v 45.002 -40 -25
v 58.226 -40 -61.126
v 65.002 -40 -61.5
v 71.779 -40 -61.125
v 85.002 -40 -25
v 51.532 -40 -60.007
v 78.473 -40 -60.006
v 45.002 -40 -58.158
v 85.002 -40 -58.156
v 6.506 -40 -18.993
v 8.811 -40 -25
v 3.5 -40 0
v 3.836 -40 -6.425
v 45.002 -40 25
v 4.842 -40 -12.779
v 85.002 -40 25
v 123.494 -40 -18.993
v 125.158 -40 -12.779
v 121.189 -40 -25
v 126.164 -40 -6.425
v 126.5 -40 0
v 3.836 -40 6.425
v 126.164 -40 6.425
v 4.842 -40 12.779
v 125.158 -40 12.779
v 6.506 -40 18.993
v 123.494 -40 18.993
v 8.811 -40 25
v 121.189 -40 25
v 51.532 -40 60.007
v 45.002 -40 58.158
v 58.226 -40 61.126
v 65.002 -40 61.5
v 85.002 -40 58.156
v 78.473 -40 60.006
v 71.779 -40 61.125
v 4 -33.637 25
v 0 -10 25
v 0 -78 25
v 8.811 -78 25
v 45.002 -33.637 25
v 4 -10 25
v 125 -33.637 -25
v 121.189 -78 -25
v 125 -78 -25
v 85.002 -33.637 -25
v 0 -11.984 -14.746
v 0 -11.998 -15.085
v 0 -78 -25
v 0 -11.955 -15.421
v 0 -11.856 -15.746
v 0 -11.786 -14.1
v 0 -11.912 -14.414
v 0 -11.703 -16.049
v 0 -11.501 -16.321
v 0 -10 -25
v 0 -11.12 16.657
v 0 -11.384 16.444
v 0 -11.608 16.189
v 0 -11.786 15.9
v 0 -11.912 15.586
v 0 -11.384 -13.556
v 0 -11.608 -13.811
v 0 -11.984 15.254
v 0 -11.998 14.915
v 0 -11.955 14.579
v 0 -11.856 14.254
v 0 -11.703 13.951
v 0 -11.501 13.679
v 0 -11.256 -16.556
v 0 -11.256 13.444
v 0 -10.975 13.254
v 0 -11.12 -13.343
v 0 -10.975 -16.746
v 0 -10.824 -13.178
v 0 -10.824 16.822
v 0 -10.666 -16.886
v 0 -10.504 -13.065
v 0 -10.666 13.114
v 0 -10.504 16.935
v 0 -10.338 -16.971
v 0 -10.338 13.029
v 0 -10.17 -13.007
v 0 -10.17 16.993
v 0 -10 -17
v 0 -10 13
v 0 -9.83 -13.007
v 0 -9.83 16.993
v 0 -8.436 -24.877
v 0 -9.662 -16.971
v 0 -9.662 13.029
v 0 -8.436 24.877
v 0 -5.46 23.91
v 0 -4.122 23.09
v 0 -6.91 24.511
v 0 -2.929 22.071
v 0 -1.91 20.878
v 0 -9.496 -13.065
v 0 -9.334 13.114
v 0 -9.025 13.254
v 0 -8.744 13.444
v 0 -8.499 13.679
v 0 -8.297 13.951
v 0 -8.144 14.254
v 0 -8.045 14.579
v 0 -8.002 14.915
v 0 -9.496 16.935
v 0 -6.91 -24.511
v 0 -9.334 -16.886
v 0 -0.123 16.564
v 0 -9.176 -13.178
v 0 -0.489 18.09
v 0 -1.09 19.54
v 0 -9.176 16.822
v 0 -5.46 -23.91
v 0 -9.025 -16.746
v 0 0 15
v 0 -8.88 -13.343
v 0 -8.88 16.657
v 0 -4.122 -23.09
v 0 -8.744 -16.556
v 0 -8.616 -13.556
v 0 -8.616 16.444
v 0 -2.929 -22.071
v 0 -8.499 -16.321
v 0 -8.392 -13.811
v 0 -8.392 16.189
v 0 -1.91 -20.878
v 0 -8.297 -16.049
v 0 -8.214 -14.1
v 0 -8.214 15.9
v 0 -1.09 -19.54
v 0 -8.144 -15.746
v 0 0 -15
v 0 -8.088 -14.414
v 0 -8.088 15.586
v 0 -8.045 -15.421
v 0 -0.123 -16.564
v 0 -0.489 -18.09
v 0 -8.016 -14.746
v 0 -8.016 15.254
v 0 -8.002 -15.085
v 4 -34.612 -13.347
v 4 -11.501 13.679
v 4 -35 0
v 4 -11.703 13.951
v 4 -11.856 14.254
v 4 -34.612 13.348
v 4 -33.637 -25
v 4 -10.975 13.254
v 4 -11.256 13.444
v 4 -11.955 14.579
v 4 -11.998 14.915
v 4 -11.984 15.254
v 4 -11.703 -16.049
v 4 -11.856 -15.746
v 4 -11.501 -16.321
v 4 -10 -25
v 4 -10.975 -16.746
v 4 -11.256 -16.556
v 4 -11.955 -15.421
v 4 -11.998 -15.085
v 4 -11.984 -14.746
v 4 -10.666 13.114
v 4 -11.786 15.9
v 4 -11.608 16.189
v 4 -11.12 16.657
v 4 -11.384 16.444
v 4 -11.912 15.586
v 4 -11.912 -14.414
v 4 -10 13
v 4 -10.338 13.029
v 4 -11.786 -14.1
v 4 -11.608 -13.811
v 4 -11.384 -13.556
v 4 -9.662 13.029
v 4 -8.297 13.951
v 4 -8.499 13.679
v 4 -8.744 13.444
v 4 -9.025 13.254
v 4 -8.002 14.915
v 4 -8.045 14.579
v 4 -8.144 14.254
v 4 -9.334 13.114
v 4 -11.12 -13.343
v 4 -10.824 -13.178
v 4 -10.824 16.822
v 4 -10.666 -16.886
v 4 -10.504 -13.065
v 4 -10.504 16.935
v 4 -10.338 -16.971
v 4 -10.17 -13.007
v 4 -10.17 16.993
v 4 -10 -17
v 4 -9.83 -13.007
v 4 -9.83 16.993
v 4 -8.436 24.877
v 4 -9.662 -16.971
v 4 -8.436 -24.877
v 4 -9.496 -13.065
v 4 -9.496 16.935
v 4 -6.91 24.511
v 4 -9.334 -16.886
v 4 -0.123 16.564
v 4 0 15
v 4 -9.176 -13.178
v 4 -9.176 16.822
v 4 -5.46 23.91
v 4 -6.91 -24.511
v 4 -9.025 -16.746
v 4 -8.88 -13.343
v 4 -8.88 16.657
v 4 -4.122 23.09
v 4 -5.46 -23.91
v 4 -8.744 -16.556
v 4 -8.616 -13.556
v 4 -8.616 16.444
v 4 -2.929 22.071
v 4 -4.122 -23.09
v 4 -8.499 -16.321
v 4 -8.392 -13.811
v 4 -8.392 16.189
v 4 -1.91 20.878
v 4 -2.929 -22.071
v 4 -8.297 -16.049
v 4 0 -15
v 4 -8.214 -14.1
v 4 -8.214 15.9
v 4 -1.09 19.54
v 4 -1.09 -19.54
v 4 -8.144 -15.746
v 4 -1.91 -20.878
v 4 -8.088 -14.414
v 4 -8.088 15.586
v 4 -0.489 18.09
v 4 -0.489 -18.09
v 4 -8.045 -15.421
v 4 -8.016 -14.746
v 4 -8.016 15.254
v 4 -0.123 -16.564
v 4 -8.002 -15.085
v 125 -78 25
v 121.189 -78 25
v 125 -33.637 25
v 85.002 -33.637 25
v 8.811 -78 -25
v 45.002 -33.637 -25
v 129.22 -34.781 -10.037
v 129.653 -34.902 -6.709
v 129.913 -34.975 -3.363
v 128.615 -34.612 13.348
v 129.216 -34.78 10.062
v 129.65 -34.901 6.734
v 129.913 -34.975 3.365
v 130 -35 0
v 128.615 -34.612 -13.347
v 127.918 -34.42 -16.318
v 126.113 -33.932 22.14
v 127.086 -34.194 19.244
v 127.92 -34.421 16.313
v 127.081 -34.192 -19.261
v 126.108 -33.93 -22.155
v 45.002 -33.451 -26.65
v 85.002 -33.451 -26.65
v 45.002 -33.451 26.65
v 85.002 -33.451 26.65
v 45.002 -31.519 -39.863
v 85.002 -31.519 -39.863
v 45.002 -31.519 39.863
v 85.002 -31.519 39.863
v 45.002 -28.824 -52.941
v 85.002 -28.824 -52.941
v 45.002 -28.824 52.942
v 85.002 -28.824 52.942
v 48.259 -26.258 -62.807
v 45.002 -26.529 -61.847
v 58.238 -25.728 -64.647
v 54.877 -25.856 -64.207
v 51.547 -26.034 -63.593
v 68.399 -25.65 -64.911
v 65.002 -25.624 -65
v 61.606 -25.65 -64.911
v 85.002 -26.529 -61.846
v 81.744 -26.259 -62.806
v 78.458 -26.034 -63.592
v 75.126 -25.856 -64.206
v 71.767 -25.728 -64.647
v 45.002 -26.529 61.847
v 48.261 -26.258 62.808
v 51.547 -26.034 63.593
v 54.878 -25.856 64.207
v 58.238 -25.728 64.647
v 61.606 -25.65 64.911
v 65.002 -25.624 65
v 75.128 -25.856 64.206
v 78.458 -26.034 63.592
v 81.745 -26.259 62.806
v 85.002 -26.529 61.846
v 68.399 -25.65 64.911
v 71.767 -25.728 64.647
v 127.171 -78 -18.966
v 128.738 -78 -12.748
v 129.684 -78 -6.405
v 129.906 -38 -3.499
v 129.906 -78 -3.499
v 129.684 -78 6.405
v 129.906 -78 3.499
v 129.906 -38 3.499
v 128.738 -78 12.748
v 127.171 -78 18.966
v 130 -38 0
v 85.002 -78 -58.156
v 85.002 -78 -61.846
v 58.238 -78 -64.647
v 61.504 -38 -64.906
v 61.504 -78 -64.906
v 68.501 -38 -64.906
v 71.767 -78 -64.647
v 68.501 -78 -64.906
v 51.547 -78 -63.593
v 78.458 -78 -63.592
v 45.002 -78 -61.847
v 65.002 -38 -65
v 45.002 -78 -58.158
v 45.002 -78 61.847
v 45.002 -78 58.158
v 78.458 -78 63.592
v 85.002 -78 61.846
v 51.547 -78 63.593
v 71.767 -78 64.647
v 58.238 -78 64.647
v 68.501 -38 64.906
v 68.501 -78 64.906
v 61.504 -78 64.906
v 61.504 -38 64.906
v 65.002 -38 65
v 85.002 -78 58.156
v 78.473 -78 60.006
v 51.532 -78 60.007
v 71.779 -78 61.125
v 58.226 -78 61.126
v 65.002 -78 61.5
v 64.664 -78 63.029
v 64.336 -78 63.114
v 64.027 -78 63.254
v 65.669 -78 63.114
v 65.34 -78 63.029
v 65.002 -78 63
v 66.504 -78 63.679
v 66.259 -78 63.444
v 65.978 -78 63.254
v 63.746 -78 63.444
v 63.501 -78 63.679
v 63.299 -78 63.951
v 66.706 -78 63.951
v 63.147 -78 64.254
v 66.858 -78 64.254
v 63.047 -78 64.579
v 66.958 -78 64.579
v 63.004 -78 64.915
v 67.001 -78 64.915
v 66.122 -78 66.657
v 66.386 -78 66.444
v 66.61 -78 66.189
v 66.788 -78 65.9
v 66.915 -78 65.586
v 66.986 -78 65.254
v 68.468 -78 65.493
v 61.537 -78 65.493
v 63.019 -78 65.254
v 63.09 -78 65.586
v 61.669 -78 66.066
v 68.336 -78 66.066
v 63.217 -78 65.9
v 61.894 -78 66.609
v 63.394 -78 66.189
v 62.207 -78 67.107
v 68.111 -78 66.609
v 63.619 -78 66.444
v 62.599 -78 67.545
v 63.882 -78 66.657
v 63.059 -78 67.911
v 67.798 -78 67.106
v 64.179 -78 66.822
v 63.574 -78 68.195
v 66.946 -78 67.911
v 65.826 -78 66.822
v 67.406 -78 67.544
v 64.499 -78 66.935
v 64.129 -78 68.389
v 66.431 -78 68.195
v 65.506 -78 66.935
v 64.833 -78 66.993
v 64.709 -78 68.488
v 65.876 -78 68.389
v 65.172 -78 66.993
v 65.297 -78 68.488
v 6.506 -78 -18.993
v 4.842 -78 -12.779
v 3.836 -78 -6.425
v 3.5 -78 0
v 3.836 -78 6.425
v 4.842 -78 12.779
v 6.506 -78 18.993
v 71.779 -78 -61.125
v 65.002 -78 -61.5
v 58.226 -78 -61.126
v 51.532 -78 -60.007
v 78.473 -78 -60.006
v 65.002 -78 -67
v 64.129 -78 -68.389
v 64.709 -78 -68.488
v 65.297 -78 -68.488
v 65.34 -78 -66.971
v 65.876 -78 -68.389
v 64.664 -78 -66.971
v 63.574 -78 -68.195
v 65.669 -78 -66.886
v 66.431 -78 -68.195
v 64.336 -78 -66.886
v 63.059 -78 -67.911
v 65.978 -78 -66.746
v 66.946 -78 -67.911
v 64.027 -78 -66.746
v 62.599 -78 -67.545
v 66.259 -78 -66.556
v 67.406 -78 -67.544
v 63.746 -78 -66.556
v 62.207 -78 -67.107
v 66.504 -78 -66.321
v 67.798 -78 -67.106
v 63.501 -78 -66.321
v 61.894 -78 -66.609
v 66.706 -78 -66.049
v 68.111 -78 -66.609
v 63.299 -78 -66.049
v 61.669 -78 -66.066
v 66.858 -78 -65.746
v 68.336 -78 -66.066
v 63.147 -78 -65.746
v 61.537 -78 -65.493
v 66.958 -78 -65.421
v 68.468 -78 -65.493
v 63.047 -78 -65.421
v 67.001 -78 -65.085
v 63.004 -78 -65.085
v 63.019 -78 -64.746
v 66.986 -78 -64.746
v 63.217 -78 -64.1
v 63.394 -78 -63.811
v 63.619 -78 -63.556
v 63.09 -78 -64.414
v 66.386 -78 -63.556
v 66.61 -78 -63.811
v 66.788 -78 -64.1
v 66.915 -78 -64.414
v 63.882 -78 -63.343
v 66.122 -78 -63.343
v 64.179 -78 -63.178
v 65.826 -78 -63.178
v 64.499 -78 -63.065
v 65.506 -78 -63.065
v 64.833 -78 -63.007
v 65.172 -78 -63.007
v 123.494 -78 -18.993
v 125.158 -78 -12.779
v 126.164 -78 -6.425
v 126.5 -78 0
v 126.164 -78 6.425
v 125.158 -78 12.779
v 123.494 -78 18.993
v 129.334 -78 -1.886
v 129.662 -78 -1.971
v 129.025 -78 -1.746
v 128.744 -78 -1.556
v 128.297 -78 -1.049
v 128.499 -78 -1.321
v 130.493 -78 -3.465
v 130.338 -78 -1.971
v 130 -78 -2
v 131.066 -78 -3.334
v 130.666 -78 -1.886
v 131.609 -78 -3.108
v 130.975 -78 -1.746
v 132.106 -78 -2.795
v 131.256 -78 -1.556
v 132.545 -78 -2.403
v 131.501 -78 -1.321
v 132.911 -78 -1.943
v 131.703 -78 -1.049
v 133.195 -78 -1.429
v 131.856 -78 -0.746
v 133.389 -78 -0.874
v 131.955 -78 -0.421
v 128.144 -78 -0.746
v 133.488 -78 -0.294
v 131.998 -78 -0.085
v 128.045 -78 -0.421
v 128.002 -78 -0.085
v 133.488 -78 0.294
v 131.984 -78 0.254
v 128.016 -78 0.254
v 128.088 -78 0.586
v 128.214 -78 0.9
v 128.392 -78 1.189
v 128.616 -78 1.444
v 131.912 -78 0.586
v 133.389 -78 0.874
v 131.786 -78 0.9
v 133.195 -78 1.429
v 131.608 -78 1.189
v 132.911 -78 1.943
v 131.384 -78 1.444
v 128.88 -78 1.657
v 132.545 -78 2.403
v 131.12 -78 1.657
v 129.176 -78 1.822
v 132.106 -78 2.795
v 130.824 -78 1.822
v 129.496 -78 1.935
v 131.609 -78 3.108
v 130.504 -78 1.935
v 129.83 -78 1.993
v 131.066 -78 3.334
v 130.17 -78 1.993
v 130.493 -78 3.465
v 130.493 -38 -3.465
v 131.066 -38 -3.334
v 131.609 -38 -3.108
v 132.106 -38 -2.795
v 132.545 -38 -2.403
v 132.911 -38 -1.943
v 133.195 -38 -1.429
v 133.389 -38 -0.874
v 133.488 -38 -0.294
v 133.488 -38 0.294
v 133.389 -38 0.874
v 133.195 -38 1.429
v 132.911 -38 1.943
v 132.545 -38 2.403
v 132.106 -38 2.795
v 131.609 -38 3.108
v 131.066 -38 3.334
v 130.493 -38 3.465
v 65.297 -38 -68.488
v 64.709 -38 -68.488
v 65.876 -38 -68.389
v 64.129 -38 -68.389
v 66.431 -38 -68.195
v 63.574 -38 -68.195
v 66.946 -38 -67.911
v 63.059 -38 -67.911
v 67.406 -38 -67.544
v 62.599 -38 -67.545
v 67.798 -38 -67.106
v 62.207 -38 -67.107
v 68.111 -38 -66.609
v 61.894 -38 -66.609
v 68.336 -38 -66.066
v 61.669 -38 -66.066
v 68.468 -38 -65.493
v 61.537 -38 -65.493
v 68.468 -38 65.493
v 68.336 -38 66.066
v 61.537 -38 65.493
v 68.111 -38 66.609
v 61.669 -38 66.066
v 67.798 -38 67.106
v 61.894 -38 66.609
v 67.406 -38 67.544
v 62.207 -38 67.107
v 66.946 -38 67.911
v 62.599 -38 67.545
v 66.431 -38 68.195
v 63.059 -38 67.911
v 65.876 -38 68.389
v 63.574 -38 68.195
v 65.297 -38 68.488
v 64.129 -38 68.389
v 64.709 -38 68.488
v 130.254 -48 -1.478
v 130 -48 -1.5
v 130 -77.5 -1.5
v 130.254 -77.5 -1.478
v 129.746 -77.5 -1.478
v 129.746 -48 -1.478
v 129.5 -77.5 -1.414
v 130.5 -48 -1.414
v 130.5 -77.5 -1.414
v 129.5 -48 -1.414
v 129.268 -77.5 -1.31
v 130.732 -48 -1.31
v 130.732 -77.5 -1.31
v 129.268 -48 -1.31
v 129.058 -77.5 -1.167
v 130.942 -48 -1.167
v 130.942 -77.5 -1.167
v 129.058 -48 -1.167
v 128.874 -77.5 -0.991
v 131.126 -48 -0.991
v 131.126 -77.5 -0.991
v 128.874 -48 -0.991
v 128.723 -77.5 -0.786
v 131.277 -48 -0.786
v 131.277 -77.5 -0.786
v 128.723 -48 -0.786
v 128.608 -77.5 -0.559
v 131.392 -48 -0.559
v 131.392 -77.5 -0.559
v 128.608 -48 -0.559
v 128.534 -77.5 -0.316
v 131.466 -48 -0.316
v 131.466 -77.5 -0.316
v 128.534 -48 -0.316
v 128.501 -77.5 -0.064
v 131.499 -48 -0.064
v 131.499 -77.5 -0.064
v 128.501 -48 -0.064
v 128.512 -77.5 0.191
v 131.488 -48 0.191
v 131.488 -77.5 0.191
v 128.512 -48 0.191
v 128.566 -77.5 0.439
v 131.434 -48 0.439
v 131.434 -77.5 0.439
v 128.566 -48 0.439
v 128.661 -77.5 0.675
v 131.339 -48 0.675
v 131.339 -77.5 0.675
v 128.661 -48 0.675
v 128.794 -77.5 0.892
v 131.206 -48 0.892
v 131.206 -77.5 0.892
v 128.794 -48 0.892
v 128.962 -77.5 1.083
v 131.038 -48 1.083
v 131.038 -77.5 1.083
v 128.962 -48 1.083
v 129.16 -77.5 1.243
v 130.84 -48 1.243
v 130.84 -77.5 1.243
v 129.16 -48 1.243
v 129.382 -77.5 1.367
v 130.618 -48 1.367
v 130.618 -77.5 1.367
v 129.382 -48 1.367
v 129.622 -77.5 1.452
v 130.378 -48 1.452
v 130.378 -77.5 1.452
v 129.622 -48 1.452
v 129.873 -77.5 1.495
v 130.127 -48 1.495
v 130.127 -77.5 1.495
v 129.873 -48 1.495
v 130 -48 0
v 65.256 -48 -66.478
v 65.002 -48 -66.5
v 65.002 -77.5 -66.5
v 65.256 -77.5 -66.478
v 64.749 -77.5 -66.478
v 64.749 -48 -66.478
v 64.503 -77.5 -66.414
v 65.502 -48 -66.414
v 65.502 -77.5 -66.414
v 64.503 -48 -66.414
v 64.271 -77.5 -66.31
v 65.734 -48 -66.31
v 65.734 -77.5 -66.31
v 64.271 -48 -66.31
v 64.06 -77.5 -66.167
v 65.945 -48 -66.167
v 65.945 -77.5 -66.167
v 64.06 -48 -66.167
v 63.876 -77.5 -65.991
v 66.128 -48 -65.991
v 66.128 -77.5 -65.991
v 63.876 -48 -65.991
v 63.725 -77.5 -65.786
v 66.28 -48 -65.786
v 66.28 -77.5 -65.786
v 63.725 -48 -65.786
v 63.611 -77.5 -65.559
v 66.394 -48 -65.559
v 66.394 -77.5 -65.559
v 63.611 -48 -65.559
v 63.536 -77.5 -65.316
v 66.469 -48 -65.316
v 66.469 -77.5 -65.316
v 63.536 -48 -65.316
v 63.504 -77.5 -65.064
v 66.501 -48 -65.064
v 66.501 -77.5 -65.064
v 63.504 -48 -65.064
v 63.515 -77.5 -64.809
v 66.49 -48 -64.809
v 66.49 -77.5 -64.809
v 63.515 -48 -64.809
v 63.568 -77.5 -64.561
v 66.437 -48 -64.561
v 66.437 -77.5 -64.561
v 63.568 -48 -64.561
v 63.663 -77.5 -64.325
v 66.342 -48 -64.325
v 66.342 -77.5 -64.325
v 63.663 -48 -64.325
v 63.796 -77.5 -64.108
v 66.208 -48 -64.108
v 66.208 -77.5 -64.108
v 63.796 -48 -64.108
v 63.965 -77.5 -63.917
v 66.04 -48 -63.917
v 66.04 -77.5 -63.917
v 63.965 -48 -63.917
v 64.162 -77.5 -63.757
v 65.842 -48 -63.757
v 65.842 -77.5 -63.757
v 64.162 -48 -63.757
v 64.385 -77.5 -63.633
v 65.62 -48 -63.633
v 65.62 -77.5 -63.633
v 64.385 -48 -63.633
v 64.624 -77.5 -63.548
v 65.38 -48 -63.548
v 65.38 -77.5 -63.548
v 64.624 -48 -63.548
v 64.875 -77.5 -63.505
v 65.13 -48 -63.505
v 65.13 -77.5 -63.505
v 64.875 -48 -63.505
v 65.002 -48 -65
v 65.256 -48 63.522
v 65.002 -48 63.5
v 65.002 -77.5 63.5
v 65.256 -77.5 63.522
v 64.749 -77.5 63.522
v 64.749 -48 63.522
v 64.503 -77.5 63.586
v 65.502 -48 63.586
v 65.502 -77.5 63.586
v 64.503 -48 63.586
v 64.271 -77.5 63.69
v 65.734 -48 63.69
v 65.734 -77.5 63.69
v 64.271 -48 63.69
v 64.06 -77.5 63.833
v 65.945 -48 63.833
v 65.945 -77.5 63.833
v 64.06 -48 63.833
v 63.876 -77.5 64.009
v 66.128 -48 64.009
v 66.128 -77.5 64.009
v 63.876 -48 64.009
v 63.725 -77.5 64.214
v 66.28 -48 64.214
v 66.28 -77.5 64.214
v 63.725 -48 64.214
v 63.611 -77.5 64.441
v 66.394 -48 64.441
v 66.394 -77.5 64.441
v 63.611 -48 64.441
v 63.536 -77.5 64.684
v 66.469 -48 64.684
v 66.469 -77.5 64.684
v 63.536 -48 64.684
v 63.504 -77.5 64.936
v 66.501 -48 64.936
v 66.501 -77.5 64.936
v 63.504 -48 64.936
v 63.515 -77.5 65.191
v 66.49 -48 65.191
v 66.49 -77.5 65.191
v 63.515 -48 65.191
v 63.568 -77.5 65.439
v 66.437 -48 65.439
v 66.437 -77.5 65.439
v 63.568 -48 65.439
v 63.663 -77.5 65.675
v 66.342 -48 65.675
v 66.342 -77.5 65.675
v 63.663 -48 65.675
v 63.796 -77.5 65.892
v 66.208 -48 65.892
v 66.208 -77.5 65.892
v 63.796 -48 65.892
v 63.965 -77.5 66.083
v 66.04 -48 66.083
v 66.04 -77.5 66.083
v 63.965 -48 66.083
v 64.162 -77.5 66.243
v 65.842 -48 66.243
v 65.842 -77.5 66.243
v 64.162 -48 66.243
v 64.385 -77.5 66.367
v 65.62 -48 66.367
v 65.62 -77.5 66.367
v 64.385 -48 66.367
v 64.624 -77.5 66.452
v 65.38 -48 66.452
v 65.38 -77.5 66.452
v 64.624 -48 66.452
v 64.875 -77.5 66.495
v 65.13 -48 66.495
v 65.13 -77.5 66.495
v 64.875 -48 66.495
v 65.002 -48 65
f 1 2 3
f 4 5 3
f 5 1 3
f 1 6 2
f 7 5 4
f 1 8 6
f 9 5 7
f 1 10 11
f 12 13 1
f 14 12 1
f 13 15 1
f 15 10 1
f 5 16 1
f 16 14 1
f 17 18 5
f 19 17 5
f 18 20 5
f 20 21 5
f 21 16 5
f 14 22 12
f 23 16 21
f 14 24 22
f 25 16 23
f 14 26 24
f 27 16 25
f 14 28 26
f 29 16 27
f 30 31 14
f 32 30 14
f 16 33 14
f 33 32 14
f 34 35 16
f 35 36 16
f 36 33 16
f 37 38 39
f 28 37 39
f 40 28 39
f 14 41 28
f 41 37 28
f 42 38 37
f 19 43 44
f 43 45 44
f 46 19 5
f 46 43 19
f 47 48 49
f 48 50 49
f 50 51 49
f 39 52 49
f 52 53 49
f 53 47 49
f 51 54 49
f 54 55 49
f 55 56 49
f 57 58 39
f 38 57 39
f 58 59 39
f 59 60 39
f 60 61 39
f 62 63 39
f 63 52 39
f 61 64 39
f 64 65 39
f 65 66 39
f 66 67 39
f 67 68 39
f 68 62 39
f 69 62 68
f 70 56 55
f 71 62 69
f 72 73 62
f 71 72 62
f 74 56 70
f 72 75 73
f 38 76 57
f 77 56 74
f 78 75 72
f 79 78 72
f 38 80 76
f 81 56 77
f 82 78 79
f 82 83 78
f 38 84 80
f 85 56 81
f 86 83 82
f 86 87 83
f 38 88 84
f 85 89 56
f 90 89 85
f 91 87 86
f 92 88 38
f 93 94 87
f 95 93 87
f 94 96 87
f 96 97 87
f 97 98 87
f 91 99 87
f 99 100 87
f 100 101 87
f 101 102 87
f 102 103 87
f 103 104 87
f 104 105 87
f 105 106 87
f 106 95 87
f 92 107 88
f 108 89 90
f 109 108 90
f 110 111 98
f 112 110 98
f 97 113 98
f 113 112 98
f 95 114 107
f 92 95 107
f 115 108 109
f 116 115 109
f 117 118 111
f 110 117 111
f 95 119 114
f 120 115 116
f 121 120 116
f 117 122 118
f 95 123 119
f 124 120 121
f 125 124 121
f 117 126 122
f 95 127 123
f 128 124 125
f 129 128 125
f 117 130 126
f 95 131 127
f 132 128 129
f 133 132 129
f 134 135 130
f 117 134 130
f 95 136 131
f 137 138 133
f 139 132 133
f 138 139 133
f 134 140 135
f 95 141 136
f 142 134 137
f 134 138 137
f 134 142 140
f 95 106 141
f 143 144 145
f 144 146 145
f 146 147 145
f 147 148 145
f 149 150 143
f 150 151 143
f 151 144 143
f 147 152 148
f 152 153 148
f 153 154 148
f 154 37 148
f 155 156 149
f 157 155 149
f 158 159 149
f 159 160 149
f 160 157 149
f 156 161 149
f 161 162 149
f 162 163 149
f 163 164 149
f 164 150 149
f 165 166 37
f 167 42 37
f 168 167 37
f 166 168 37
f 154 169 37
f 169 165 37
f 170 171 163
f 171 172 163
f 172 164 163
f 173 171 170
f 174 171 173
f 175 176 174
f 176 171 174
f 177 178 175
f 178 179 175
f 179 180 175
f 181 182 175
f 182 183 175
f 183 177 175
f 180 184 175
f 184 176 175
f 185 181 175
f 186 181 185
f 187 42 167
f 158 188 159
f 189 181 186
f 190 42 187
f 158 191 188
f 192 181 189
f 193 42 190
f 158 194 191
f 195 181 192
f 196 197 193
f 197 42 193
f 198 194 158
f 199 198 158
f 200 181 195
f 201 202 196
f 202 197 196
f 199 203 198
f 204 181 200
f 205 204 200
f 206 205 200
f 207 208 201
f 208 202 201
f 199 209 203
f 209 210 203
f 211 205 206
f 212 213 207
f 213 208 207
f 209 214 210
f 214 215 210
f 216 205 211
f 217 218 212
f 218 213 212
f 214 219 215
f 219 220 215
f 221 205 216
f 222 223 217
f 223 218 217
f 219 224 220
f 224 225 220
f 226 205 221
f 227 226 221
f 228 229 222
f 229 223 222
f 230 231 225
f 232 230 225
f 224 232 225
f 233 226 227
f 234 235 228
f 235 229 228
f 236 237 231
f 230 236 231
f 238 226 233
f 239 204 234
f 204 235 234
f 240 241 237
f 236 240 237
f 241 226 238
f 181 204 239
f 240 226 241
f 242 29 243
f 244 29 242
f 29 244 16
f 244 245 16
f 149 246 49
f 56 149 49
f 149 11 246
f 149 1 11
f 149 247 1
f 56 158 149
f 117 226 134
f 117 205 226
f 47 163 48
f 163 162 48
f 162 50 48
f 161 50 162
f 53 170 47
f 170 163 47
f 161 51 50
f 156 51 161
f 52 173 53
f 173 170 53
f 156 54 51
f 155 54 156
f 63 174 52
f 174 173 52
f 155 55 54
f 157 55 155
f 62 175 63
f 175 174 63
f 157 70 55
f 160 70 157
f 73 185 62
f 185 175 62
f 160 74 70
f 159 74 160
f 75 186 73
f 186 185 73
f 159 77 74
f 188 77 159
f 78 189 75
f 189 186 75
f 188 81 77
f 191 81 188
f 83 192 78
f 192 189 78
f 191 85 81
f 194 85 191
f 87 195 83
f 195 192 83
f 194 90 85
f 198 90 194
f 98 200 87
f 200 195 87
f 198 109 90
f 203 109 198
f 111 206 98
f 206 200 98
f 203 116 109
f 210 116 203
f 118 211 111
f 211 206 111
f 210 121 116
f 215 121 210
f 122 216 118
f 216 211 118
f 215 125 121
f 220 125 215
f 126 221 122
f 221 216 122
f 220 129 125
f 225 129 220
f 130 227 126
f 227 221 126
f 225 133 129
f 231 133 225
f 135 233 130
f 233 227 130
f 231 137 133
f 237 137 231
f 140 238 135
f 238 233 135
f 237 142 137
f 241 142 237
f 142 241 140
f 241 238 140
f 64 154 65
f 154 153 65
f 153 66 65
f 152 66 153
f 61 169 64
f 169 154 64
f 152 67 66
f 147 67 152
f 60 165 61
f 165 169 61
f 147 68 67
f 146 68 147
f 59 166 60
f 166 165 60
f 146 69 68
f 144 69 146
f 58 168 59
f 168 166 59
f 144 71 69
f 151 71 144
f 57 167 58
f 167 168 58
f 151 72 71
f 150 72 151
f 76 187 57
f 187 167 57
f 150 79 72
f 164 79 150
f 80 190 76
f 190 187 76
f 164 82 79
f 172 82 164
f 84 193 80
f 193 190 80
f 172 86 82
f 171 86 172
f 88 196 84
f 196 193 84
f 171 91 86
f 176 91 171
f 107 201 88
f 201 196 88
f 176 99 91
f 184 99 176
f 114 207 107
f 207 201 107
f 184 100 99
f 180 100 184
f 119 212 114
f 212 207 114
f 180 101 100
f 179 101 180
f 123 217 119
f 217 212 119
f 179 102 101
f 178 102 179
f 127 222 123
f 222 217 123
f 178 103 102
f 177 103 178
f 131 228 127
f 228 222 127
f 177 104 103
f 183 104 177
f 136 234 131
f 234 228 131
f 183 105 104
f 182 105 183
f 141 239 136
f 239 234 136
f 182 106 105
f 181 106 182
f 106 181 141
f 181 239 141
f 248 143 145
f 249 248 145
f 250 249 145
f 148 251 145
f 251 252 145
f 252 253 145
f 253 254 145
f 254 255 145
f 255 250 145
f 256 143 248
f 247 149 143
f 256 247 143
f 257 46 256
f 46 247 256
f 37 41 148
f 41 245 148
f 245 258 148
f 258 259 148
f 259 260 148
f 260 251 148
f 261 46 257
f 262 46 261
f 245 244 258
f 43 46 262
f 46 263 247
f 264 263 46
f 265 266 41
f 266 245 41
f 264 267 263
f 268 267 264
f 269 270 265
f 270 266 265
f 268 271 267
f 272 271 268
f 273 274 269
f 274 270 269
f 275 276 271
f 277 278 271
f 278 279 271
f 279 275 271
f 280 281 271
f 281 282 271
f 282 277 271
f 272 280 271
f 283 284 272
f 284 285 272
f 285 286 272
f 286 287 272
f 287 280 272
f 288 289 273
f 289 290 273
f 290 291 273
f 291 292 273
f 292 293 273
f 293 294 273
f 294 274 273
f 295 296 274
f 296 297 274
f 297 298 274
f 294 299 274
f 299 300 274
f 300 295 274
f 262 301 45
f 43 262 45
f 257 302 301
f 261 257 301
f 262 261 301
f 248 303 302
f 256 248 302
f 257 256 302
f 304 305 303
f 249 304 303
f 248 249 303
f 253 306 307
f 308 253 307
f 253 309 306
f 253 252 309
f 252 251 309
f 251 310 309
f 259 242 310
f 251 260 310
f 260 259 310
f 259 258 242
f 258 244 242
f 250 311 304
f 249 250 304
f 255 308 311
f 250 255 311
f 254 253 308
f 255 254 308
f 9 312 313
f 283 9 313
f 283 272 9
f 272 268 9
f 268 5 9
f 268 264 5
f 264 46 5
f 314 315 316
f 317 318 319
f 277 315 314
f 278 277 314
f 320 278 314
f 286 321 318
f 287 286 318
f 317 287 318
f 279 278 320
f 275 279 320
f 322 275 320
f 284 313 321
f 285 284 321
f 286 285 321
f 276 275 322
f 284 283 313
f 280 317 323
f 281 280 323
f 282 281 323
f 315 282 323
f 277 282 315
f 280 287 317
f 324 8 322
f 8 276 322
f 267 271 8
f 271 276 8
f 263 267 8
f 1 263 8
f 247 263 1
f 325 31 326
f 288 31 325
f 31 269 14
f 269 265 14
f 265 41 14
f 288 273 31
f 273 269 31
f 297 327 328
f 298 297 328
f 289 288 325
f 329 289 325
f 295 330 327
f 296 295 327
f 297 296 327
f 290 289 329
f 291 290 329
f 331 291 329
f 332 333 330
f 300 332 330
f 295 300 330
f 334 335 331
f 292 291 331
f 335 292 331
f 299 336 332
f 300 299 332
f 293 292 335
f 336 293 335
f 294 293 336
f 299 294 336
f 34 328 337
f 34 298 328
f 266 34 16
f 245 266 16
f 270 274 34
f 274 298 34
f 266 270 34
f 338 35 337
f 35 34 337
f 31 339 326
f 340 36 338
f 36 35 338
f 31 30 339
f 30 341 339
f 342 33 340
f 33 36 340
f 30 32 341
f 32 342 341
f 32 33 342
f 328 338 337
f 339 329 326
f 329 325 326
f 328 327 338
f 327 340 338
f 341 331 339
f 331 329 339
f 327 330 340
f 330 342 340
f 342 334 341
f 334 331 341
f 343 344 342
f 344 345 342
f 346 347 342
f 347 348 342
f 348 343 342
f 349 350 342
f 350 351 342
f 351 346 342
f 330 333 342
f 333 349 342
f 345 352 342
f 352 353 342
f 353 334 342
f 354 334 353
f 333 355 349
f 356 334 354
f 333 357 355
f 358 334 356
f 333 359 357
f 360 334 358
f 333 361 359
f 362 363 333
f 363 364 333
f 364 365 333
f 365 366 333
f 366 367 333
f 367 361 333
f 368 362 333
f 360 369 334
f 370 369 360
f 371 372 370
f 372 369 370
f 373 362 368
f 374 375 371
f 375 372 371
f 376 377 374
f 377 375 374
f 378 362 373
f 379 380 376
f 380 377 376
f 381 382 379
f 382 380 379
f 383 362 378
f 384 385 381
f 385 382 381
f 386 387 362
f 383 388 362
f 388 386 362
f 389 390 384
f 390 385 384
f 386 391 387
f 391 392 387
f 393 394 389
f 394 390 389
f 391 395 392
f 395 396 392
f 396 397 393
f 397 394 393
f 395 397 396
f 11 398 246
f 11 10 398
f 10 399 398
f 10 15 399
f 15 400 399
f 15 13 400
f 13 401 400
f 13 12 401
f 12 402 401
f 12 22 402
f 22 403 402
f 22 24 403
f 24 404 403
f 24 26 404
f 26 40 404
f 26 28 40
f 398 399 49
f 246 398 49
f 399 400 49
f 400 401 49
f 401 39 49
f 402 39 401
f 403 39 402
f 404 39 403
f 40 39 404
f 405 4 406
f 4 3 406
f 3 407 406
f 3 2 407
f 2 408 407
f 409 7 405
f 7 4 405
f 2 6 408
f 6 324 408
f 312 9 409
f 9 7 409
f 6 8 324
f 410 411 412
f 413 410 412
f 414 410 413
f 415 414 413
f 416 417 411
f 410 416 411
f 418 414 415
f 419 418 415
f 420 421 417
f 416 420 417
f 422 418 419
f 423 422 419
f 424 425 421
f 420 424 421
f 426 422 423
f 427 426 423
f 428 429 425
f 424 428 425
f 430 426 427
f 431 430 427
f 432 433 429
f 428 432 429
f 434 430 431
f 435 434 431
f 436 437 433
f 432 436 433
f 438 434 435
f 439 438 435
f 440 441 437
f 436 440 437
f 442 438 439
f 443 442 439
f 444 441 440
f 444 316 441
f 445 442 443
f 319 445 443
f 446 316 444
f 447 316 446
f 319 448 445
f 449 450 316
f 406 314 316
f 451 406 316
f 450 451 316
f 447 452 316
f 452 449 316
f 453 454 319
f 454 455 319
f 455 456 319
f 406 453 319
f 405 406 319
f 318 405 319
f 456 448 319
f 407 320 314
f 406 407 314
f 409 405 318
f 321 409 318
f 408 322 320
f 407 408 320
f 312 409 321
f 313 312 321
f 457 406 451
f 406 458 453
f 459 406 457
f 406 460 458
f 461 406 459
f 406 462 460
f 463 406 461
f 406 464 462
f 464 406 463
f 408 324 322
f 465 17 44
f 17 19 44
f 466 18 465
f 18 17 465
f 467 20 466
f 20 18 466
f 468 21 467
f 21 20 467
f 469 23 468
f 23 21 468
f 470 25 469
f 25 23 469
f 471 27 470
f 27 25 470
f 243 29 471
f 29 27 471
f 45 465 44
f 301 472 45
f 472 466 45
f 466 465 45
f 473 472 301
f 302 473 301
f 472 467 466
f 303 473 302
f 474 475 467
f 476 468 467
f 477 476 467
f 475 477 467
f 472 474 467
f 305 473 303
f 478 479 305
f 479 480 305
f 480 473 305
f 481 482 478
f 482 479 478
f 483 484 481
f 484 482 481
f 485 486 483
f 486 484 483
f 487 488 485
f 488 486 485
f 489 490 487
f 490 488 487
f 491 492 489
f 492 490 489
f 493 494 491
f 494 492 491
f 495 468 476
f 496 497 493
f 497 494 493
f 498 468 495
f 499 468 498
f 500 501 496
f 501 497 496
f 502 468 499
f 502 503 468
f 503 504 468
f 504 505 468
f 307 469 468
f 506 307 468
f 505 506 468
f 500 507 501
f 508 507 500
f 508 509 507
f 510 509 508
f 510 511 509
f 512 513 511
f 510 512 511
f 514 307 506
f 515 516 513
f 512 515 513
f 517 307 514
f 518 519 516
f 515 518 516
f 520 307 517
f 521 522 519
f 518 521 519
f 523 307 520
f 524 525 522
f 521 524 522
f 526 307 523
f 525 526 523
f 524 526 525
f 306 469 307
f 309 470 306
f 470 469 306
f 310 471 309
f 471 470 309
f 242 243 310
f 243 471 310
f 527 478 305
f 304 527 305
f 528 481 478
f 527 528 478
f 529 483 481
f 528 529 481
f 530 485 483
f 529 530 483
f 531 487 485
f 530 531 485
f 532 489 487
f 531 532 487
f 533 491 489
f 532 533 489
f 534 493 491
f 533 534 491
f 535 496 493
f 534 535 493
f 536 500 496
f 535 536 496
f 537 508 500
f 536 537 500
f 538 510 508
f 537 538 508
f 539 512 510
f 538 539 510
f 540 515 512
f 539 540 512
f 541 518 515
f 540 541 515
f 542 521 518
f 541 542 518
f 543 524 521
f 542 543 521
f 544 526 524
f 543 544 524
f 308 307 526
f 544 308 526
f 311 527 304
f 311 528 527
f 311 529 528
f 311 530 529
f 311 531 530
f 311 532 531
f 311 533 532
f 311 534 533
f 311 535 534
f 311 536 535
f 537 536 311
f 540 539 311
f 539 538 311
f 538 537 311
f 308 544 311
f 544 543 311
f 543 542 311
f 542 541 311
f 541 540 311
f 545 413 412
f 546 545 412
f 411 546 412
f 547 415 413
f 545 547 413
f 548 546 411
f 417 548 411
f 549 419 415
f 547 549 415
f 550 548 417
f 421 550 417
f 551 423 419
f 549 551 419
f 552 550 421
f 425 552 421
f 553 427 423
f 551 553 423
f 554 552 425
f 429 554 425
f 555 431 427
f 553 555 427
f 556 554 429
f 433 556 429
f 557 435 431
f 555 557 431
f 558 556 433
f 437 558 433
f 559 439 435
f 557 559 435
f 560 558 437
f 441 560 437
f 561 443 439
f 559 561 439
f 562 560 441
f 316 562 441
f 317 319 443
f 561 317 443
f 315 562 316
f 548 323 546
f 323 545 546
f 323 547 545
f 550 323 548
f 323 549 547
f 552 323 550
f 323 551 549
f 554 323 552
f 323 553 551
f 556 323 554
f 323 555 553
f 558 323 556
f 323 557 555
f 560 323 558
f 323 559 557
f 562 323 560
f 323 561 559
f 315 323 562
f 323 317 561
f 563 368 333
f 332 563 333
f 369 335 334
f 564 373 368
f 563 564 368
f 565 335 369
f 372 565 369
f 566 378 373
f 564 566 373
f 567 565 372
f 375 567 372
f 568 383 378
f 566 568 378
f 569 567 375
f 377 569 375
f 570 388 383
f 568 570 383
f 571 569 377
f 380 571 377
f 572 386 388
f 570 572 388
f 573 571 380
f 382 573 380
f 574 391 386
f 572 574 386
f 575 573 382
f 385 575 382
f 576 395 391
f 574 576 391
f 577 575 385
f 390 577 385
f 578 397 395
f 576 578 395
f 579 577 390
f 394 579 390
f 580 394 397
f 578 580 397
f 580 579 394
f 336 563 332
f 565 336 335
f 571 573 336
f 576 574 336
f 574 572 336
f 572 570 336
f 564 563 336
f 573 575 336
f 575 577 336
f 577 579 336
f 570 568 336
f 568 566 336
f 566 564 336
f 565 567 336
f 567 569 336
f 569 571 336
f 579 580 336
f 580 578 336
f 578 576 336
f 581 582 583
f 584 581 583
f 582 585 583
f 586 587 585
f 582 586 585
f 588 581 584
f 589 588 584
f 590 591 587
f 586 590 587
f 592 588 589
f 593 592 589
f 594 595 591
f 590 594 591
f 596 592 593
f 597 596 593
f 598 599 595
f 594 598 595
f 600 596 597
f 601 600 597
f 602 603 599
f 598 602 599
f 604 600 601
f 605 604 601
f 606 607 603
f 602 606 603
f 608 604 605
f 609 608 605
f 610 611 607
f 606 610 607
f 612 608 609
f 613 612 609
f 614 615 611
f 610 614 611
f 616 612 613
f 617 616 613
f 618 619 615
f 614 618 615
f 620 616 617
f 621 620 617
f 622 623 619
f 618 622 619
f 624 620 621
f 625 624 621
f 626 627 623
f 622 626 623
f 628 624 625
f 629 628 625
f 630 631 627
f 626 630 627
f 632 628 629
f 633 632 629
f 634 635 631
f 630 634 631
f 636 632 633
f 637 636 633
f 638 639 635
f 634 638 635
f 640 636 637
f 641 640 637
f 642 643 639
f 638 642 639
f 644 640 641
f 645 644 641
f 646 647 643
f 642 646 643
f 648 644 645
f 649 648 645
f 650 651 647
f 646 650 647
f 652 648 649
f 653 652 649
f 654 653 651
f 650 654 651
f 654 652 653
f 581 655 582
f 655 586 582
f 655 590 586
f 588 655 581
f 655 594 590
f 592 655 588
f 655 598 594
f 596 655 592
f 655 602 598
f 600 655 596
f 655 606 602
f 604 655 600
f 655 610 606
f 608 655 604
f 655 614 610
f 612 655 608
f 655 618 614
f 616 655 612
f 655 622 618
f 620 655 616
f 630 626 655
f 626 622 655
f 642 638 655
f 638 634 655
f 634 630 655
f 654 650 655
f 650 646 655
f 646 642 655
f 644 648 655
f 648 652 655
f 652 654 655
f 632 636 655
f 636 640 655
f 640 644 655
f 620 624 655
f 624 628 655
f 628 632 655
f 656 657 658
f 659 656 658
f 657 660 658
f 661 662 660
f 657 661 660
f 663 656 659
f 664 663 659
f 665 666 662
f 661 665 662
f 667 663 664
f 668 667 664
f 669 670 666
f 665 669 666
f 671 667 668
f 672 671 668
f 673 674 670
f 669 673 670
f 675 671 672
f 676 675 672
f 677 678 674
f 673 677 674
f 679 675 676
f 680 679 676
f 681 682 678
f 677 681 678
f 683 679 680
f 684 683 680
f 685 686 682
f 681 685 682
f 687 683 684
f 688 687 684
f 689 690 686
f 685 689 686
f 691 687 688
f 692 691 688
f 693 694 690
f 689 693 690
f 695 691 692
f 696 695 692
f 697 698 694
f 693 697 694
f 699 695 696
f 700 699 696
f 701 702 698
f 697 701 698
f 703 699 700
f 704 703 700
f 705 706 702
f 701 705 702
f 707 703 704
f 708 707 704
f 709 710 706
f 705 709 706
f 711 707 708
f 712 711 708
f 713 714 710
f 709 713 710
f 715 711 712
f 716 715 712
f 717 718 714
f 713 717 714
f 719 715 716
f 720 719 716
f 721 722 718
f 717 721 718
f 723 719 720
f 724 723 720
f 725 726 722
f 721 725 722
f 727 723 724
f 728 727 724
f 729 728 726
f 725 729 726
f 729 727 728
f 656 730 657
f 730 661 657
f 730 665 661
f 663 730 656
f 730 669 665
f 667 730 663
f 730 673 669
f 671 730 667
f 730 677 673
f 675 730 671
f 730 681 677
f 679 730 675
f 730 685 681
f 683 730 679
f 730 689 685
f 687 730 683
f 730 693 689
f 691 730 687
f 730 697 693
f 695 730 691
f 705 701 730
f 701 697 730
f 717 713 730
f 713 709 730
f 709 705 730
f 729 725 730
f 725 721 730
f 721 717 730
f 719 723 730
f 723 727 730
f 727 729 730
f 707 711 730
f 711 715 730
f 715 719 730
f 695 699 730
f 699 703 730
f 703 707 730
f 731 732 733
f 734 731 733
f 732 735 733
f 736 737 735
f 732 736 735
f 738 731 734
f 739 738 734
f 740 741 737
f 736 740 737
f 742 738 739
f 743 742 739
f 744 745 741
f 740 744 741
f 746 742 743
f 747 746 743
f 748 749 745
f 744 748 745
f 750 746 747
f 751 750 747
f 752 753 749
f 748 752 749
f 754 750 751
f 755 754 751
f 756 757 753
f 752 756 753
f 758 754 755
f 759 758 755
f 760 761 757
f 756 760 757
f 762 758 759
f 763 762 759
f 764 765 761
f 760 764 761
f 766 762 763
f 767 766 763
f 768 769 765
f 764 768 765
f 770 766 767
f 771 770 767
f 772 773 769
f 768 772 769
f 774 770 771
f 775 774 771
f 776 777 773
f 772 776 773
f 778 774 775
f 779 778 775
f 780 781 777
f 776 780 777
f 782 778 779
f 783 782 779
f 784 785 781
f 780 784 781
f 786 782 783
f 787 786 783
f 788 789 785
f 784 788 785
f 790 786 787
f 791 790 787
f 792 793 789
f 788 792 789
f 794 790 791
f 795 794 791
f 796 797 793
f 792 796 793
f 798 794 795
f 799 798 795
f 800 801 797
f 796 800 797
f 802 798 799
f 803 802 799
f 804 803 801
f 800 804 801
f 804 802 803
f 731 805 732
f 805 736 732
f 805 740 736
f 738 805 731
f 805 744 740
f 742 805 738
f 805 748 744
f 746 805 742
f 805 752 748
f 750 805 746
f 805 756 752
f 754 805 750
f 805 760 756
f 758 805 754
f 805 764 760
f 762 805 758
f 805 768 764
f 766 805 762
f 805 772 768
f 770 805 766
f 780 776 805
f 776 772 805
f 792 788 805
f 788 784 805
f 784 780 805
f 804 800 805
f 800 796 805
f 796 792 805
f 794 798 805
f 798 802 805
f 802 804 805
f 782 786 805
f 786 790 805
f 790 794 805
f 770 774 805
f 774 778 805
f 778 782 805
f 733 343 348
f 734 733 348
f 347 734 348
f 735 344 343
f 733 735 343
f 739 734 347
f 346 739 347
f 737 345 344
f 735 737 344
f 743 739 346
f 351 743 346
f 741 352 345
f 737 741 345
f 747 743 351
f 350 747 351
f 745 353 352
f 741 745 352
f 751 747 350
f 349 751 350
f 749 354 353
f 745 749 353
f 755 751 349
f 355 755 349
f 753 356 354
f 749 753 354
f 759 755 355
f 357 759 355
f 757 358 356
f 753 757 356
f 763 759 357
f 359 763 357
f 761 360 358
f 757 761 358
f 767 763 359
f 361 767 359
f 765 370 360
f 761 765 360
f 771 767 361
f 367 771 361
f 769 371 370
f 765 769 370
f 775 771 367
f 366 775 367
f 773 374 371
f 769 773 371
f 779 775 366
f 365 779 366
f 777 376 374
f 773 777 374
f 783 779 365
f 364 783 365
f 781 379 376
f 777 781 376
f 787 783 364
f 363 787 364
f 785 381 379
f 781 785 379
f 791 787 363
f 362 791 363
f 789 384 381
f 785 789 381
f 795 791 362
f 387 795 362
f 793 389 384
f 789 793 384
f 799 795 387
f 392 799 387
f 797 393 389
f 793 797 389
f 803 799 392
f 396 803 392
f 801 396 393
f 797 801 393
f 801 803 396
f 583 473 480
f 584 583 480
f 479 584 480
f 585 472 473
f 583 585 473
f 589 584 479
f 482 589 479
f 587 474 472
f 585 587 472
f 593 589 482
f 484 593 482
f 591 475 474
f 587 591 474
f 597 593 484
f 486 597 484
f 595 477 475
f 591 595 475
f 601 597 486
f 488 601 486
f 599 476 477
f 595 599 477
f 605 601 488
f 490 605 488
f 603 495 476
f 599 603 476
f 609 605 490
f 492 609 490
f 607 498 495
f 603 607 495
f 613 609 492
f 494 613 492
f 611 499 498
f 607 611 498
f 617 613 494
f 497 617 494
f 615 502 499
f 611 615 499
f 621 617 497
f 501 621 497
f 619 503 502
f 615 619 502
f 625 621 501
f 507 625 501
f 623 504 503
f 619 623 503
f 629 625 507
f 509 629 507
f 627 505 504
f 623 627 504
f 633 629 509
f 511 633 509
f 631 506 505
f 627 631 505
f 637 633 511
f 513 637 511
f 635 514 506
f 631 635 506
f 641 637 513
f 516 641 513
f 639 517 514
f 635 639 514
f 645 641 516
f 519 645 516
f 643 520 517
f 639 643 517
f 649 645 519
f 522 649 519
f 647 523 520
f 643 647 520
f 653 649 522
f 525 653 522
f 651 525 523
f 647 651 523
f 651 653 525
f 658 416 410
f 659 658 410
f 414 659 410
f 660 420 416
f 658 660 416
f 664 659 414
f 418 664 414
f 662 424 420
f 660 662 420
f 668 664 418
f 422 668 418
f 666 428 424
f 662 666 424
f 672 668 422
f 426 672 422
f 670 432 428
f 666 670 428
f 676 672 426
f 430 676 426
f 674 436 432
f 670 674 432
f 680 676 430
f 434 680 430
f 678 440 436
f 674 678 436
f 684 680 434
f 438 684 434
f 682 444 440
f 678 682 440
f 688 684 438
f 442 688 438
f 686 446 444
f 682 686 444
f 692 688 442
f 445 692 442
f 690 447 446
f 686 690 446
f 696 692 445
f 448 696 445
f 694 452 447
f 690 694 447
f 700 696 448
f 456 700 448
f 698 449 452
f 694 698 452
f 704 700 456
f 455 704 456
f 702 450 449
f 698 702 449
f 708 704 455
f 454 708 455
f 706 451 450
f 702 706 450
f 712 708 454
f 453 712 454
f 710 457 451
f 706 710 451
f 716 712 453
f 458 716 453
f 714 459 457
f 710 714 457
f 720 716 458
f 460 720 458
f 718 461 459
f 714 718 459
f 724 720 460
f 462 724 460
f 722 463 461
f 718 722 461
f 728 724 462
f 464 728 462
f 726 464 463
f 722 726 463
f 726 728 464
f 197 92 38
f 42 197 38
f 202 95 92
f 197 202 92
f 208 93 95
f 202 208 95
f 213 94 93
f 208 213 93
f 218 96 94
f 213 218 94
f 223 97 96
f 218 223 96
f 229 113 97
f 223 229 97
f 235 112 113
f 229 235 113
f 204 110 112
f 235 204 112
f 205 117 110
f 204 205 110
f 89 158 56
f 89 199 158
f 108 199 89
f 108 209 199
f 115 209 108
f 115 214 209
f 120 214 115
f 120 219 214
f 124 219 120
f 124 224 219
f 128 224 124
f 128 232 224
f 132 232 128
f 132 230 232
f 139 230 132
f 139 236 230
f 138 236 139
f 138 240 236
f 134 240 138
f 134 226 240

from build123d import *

# Parameters (mm, degrees)
SKETCH_1_W           = 50
SKETCH_1_H           = 40
EXTRUDE_1_DEPTH      = 4
SKETCH_2_R           = 2
CUT_EXTRUDE_1_DEPTH  = 4
EXTRUDE_2_DEPTH      = 180
CUT_EXTRUDE_START    = -60
CUT_EXTRUDE_2_DEPTH  = 60
CUT_EXTRUDE_3_DEPTH  = 60
EXTRUDE_3_REACH      = 191.95
EXTRUDE_3_END_RADIUS = 230
EXTRUDE_START        = 38
EXTRUDE_4_DEPTH      = 38
CUT_EXTRUDE_4_DEPTH  = 211.154705038
SKETCH_9_R           = 3.5
EXTRUDE_5_DEPTH      = 40
SKETCH_10_R          = 1.5
CUT_EXTRUDE_5_DEPTH  = 30
CHAMFER_1_SIZE       = 0.5
EXTRUDE_6_REACH      = 171.111
EXTRUDE_6_END_RADIUS = 235
EXTRUDE_7_REACH      = 171.111
FILLET_1_R           = 10


with BuildPart() as part:
    # 草图1 → 凸台-拉伸1 (new body)
    with BuildSketch(Plane(origin=(0, 0, 0), x_dir=(0, 0, -1), z_dir=(1, 0, 0))):
        with Locations((0, -20)):
            Rectangle(SKETCH_1_W, SKETCH_1_H)
    extrude(amount=EXTRUDE_1_DEPTH)

    # 草图2 → 切除-拉伸1 (cut)
    with BuildSketch(Plane(origin=(4, 0, 0), x_dir=(0, 0, -1), z_dir=(1, 0, 0))):
        with Locations((-15, -10)):
            Circle(SKETCH_2_R)
        with Locations((15, -10)):
            Circle(SKETCH_2_R)
    extrude(amount=-CUT_EXTRUDE_1_DEPTH, mode=Mode.SUBTRACT)

    # 草图3 → 凸台-拉伸2 (add)
    with BuildSketch(Plane(origin=(4, 0, 0), x_dir=(0, 0, -1), z_dir=(1, 0, 0))):
        with BuildLine():
            Line((-25, -33.637267303), (-25, -38.666428911))
            ThreePointArc((-25, -38.666428911), (0, -40), (25, -38.666428911))
            Line((25, -38.666428911), (25, -33.637267303))
            ThreePointArc((25, -33.637267303), (0, -35), (-25, -33.637267303))
        make_face()
    extrude(amount=EXTRUDE_2_DEPTH)

    # 草图4 → 切除-拉伸2 (cut)
    with BuildSketch(Plane(origin=(4, 0, 0), x_dir=(0, 0, -1), z_dir=(1, 0, 0)).offset(CUT_EXTRUDE_START)):
        with BuildLine():
            Line((25, -40), (25, -38.666428911))
            ThreePointArc((25, -38.666428911), (12.517771485, -39.666370401), (0, -40))
            Line((0, -40), (25, -40))
        make_face()
    extrude(amount=CUT_EXTRUDE_2_DEPTH, mode=Mode.SUBTRACT)

    # 草图5 → 切除-拉伸3 (cut)
    with BuildSketch(Plane(origin=(4, 0, 0), x_dir=(0, 0, -1), z_dir=(1, 0, 0)).offset(CUT_EXTRUDE_START)):
        with BuildLine():
            Line((-25, -38.666428911), (-25, -40))
            Line((-25, -40), (0, -40))
            ThreePointArc((0, -40), (-12.517771485, -39.666370401), (-25, -38.666428911))
        make_face()
    extrude(amount=CUT_EXTRUDE_3_DEPTH, mode=Mode.SUBTRACT)

    # 凸台-拉伸3: up to this cylinder (the profile starts outside it)
    extrude_3_end = Plane(origin=(65.000728, 195, 0), z_dir=(-1, 0, 0)) * Cylinder(EXTRUDE_3_END_RADIUS, 844.9, mode=Mode.PRIVATE)
    # 草图6 → 凸台-拉伸3 (add, up to the surface)
    with BuildSketch(Plane(origin=(0, -40, 0), x_dir=(-1, 0, 0), z_dir=(0, -1, 0)), mode=Mode.PRIVATE) as extrude_3_sk1:
        with BuildLine():
            Line((-85.002334196, 61.845829501), (-85.002334196, 25))
            Line((-85.002334196, 25), (-125, 25))
            ThreePointArc((-125, 25), (-130, 0), (-125, -25))
            Line((-125, -25), (-85.002334196, -25))
            Line((-85.002334196, -25), (-85.002334196, -61.845829501))
            ThreePointArc((-85.002334196, -61.845829501), (-65.002453212, -64.999999954), (-45.002334196, -61.84733917))
            Line((-45.002334196, -61.84733917), (-45.002334196, -25))
            Line((-45.002334196, -25), (-5, -25))
            ThreePointArc((-5, -25), (0, 0), (-5, 25))
            Line((-5, 25), (-45.002334196, 25))
            Line((-45.002334196, 25), (-45.002334196, 61.84733917))
            ThreePointArc((-45.002334196, 61.84733917), (-65.002453212, 64.999999954), (-85.002334196, 61.845829501))
        make_face()
    extrude_3_tool1 = extrude(extrude_3_sk1.sketch, amount=-EXTRUDE_3_REACH, mode=Mode.PRIVATE) - extrude_3_end
    extrude_3 = extrude_3_tool1.solids().sort_by_distance((65.000728, -40, 0))[0]
    add(extrude_3)

    # 镜向1: 凸台-拉伸3 across plane
    add(extrude_3.mirror(Plane.XY))

    # 草图7 → 凸台-拉伸4 (add)
    with BuildSketch(Plane.XZ.offset(40).offset(EXTRUDE_START)):
        with BuildLine():
            Line((5, -25), (8.810588186, -25))
            ThreePointArc((8.810588186, -25), (3.5, 0), (8.810588186, 25))
            Line((8.810588186, 25), (5, 25))
            ThreePointArc((5, 25), (1.26225608, 12.747548784), (0, 0))
            ThreePointArc((0, 0), (1.26225608, -12.747548784), (5, -25))
        make_face()
        with BuildLine():
            Line((45.002334196, -58.157917452), (45.002334196, -61.84733917))
            ThreePointArc((45.002334196, -61.84733917), (65.002453212, -64.999999954), (85.002334196, -61.845829501))
            Line((85.002334196, -61.845829501), (85.002334196, -58.156312011))
            ThreePointArc((85.002334196, -58.156312011), (65.002468367, -61.49999995), (45.002334196, -58.157917452))
        make_face()
        with BuildLine():
            Line((121.189411814, -25), (125, -25))
            ThreePointArc((125, -25), (128.73774392, -12.747548784), (130, 0))
            ThreePointArc((130, 0), (128.73774392, 12.747548784), (125, 25))
            Line((125, 25), (121.189411814, 25))
            ThreePointArc((121.189411814, 25), (126.5, 0), (121.189411814, -25))
        make_face()
        with BuildLine():
            Line((85.002334196, 58.156312011), (85.002334196, 61.845829501))
            ThreePointArc((85.002334196, 61.845829501), (65.002453212, 64.999999954), (45.002334196, 61.84733917))
            Line((45.002334196, 61.84733917), (45.002334196, 58.157917452))
            ThreePointArc((45.002334196, 58.157917452), (65.002468367, 61.49999995), (85.002334196, 58.156312011))
        make_face()
    extrude(amount=-EXTRUDE_4_DEPTH)

    # 草图8 → 切除-拉伸4 (cut, through all)
    with BuildSketch(Plane.XZ.offset(78)):
        with BuildLine():
            Line((184, 25), (125, 25))
            ThreePointArc((125, 25), (130, 0), (125, -25))
            Line((125, -25), (184, -25))
            Line((184, -25), (184, 25))
        make_face()
    extrude(amount=-CUT_EXTRUDE_4_DEPTH, mode=Mode.SUBTRACT)

    # 草图9 → 凸台-拉伸5 (add)
    with BuildSketch(Plane.XZ.offset(78)):
        with Locations((130, 0)):
            Circle(SKETCH_9_R)
        with Locations((65.002453212, -64.999999954)):
            Circle(SKETCH_9_R)
        with Locations((65.002453212, 64.999999954)):
            Circle(SKETCH_9_R)
    extrude(amount=-EXTRUDE_5_DEPTH)

    # 草图10 → 切除-拉伸5 (cut)
    with BuildSketch(Plane.XZ.offset(78)):
        with Locations(Location((65.002453212, 64.999999954, 0), (0, 0, 270))):
            Circle(SKETCH_10_R)
        with Locations(Location((130, 0, 0), (0, 0, 270))):
            Circle(SKETCH_10_R)
        with Locations(Location((65.002453212, -64.999999954, 0), (0, 0, 270))):
            Circle(SKETCH_10_R)
    extrude(amount=-CUT_EXTRUDE_5_DEPTH, mode=Mode.SUBTRACT)

    # 倒角1
    chamfer_1_edges = [part.edges().sort_by_distance(p)[0] for p in [
        (65.002453212, -78, 66.499999954),
        (130, -78, 1.5),
        (65.002453212, -78, -63.499999954),
    ]]
    chamfer(chamfer_1_edges, length=CHAMFER_1_SIZE)

    # 凸台-拉伸6: up to this cylinder (the profile starts outside it)
    extrude_6_end = Plane(origin=(1.489564, 195, 0), z_dir=(-1, 0, 0)) * Cylinder(EXTRUDE_6_END_RADIUS, 813.222, mode=Mode.PRIVATE)
    # 草图11 → 凸台-拉伸6 (add, up to the surface)
    with BuildSketch(Plane.XZ.offset(78), mode=Mode.PRIVATE) as extrude_6_sk1:
        with BuildLine():
            Line((0, 25), (0, 0))
            ThreePointArc((0, 0), (1.26225608, 12.747548784), (5, 25))
            Line((5, 25), (0, 25))
        make_face()
    extrude_6_tool1 = extrude(extrude_6_sk1.sketch, amount=-EXTRUDE_6_REACH, mode=Mode.PRIVATE) - extrude_6_end
    add(extrude_6_tool1.solids().sort_by_distance((1.489564, -78, 18.799089))[0])

    # 草图12 → 凸台-拉伸7 (add, up to next)
    with BuildSketch(Plane.XZ.offset(78), mode=Mode.PRIVATE) as extrude_7_sk1:
        with BuildLine():
            Line((0, -25), (5, -25))
            ThreePointArc((5, -25), (1.26225608, -12.747548784), (0, 0))
            Line((0, 0), (0, -25))
        make_face()
    extrude_7_tool1 = extrude(extrude_7_sk1.sketch, amount=-EXTRUDE_7_REACH, mode=Mode.PRIVATE) - part.part
    add(extrude_7_tool1.solids().sort_by_distance((1.489564, -78, -18.799089))[0])

    # 圆角1
    fillet_1_edges = [part.edges().sort_by_distance(p)[0] for p in [
        (2, 0, 25),
        (2, 0, -25),
    ]]
    fillet(fillet_1_edges, radius=FILLET_1_R)


solid = part.part
